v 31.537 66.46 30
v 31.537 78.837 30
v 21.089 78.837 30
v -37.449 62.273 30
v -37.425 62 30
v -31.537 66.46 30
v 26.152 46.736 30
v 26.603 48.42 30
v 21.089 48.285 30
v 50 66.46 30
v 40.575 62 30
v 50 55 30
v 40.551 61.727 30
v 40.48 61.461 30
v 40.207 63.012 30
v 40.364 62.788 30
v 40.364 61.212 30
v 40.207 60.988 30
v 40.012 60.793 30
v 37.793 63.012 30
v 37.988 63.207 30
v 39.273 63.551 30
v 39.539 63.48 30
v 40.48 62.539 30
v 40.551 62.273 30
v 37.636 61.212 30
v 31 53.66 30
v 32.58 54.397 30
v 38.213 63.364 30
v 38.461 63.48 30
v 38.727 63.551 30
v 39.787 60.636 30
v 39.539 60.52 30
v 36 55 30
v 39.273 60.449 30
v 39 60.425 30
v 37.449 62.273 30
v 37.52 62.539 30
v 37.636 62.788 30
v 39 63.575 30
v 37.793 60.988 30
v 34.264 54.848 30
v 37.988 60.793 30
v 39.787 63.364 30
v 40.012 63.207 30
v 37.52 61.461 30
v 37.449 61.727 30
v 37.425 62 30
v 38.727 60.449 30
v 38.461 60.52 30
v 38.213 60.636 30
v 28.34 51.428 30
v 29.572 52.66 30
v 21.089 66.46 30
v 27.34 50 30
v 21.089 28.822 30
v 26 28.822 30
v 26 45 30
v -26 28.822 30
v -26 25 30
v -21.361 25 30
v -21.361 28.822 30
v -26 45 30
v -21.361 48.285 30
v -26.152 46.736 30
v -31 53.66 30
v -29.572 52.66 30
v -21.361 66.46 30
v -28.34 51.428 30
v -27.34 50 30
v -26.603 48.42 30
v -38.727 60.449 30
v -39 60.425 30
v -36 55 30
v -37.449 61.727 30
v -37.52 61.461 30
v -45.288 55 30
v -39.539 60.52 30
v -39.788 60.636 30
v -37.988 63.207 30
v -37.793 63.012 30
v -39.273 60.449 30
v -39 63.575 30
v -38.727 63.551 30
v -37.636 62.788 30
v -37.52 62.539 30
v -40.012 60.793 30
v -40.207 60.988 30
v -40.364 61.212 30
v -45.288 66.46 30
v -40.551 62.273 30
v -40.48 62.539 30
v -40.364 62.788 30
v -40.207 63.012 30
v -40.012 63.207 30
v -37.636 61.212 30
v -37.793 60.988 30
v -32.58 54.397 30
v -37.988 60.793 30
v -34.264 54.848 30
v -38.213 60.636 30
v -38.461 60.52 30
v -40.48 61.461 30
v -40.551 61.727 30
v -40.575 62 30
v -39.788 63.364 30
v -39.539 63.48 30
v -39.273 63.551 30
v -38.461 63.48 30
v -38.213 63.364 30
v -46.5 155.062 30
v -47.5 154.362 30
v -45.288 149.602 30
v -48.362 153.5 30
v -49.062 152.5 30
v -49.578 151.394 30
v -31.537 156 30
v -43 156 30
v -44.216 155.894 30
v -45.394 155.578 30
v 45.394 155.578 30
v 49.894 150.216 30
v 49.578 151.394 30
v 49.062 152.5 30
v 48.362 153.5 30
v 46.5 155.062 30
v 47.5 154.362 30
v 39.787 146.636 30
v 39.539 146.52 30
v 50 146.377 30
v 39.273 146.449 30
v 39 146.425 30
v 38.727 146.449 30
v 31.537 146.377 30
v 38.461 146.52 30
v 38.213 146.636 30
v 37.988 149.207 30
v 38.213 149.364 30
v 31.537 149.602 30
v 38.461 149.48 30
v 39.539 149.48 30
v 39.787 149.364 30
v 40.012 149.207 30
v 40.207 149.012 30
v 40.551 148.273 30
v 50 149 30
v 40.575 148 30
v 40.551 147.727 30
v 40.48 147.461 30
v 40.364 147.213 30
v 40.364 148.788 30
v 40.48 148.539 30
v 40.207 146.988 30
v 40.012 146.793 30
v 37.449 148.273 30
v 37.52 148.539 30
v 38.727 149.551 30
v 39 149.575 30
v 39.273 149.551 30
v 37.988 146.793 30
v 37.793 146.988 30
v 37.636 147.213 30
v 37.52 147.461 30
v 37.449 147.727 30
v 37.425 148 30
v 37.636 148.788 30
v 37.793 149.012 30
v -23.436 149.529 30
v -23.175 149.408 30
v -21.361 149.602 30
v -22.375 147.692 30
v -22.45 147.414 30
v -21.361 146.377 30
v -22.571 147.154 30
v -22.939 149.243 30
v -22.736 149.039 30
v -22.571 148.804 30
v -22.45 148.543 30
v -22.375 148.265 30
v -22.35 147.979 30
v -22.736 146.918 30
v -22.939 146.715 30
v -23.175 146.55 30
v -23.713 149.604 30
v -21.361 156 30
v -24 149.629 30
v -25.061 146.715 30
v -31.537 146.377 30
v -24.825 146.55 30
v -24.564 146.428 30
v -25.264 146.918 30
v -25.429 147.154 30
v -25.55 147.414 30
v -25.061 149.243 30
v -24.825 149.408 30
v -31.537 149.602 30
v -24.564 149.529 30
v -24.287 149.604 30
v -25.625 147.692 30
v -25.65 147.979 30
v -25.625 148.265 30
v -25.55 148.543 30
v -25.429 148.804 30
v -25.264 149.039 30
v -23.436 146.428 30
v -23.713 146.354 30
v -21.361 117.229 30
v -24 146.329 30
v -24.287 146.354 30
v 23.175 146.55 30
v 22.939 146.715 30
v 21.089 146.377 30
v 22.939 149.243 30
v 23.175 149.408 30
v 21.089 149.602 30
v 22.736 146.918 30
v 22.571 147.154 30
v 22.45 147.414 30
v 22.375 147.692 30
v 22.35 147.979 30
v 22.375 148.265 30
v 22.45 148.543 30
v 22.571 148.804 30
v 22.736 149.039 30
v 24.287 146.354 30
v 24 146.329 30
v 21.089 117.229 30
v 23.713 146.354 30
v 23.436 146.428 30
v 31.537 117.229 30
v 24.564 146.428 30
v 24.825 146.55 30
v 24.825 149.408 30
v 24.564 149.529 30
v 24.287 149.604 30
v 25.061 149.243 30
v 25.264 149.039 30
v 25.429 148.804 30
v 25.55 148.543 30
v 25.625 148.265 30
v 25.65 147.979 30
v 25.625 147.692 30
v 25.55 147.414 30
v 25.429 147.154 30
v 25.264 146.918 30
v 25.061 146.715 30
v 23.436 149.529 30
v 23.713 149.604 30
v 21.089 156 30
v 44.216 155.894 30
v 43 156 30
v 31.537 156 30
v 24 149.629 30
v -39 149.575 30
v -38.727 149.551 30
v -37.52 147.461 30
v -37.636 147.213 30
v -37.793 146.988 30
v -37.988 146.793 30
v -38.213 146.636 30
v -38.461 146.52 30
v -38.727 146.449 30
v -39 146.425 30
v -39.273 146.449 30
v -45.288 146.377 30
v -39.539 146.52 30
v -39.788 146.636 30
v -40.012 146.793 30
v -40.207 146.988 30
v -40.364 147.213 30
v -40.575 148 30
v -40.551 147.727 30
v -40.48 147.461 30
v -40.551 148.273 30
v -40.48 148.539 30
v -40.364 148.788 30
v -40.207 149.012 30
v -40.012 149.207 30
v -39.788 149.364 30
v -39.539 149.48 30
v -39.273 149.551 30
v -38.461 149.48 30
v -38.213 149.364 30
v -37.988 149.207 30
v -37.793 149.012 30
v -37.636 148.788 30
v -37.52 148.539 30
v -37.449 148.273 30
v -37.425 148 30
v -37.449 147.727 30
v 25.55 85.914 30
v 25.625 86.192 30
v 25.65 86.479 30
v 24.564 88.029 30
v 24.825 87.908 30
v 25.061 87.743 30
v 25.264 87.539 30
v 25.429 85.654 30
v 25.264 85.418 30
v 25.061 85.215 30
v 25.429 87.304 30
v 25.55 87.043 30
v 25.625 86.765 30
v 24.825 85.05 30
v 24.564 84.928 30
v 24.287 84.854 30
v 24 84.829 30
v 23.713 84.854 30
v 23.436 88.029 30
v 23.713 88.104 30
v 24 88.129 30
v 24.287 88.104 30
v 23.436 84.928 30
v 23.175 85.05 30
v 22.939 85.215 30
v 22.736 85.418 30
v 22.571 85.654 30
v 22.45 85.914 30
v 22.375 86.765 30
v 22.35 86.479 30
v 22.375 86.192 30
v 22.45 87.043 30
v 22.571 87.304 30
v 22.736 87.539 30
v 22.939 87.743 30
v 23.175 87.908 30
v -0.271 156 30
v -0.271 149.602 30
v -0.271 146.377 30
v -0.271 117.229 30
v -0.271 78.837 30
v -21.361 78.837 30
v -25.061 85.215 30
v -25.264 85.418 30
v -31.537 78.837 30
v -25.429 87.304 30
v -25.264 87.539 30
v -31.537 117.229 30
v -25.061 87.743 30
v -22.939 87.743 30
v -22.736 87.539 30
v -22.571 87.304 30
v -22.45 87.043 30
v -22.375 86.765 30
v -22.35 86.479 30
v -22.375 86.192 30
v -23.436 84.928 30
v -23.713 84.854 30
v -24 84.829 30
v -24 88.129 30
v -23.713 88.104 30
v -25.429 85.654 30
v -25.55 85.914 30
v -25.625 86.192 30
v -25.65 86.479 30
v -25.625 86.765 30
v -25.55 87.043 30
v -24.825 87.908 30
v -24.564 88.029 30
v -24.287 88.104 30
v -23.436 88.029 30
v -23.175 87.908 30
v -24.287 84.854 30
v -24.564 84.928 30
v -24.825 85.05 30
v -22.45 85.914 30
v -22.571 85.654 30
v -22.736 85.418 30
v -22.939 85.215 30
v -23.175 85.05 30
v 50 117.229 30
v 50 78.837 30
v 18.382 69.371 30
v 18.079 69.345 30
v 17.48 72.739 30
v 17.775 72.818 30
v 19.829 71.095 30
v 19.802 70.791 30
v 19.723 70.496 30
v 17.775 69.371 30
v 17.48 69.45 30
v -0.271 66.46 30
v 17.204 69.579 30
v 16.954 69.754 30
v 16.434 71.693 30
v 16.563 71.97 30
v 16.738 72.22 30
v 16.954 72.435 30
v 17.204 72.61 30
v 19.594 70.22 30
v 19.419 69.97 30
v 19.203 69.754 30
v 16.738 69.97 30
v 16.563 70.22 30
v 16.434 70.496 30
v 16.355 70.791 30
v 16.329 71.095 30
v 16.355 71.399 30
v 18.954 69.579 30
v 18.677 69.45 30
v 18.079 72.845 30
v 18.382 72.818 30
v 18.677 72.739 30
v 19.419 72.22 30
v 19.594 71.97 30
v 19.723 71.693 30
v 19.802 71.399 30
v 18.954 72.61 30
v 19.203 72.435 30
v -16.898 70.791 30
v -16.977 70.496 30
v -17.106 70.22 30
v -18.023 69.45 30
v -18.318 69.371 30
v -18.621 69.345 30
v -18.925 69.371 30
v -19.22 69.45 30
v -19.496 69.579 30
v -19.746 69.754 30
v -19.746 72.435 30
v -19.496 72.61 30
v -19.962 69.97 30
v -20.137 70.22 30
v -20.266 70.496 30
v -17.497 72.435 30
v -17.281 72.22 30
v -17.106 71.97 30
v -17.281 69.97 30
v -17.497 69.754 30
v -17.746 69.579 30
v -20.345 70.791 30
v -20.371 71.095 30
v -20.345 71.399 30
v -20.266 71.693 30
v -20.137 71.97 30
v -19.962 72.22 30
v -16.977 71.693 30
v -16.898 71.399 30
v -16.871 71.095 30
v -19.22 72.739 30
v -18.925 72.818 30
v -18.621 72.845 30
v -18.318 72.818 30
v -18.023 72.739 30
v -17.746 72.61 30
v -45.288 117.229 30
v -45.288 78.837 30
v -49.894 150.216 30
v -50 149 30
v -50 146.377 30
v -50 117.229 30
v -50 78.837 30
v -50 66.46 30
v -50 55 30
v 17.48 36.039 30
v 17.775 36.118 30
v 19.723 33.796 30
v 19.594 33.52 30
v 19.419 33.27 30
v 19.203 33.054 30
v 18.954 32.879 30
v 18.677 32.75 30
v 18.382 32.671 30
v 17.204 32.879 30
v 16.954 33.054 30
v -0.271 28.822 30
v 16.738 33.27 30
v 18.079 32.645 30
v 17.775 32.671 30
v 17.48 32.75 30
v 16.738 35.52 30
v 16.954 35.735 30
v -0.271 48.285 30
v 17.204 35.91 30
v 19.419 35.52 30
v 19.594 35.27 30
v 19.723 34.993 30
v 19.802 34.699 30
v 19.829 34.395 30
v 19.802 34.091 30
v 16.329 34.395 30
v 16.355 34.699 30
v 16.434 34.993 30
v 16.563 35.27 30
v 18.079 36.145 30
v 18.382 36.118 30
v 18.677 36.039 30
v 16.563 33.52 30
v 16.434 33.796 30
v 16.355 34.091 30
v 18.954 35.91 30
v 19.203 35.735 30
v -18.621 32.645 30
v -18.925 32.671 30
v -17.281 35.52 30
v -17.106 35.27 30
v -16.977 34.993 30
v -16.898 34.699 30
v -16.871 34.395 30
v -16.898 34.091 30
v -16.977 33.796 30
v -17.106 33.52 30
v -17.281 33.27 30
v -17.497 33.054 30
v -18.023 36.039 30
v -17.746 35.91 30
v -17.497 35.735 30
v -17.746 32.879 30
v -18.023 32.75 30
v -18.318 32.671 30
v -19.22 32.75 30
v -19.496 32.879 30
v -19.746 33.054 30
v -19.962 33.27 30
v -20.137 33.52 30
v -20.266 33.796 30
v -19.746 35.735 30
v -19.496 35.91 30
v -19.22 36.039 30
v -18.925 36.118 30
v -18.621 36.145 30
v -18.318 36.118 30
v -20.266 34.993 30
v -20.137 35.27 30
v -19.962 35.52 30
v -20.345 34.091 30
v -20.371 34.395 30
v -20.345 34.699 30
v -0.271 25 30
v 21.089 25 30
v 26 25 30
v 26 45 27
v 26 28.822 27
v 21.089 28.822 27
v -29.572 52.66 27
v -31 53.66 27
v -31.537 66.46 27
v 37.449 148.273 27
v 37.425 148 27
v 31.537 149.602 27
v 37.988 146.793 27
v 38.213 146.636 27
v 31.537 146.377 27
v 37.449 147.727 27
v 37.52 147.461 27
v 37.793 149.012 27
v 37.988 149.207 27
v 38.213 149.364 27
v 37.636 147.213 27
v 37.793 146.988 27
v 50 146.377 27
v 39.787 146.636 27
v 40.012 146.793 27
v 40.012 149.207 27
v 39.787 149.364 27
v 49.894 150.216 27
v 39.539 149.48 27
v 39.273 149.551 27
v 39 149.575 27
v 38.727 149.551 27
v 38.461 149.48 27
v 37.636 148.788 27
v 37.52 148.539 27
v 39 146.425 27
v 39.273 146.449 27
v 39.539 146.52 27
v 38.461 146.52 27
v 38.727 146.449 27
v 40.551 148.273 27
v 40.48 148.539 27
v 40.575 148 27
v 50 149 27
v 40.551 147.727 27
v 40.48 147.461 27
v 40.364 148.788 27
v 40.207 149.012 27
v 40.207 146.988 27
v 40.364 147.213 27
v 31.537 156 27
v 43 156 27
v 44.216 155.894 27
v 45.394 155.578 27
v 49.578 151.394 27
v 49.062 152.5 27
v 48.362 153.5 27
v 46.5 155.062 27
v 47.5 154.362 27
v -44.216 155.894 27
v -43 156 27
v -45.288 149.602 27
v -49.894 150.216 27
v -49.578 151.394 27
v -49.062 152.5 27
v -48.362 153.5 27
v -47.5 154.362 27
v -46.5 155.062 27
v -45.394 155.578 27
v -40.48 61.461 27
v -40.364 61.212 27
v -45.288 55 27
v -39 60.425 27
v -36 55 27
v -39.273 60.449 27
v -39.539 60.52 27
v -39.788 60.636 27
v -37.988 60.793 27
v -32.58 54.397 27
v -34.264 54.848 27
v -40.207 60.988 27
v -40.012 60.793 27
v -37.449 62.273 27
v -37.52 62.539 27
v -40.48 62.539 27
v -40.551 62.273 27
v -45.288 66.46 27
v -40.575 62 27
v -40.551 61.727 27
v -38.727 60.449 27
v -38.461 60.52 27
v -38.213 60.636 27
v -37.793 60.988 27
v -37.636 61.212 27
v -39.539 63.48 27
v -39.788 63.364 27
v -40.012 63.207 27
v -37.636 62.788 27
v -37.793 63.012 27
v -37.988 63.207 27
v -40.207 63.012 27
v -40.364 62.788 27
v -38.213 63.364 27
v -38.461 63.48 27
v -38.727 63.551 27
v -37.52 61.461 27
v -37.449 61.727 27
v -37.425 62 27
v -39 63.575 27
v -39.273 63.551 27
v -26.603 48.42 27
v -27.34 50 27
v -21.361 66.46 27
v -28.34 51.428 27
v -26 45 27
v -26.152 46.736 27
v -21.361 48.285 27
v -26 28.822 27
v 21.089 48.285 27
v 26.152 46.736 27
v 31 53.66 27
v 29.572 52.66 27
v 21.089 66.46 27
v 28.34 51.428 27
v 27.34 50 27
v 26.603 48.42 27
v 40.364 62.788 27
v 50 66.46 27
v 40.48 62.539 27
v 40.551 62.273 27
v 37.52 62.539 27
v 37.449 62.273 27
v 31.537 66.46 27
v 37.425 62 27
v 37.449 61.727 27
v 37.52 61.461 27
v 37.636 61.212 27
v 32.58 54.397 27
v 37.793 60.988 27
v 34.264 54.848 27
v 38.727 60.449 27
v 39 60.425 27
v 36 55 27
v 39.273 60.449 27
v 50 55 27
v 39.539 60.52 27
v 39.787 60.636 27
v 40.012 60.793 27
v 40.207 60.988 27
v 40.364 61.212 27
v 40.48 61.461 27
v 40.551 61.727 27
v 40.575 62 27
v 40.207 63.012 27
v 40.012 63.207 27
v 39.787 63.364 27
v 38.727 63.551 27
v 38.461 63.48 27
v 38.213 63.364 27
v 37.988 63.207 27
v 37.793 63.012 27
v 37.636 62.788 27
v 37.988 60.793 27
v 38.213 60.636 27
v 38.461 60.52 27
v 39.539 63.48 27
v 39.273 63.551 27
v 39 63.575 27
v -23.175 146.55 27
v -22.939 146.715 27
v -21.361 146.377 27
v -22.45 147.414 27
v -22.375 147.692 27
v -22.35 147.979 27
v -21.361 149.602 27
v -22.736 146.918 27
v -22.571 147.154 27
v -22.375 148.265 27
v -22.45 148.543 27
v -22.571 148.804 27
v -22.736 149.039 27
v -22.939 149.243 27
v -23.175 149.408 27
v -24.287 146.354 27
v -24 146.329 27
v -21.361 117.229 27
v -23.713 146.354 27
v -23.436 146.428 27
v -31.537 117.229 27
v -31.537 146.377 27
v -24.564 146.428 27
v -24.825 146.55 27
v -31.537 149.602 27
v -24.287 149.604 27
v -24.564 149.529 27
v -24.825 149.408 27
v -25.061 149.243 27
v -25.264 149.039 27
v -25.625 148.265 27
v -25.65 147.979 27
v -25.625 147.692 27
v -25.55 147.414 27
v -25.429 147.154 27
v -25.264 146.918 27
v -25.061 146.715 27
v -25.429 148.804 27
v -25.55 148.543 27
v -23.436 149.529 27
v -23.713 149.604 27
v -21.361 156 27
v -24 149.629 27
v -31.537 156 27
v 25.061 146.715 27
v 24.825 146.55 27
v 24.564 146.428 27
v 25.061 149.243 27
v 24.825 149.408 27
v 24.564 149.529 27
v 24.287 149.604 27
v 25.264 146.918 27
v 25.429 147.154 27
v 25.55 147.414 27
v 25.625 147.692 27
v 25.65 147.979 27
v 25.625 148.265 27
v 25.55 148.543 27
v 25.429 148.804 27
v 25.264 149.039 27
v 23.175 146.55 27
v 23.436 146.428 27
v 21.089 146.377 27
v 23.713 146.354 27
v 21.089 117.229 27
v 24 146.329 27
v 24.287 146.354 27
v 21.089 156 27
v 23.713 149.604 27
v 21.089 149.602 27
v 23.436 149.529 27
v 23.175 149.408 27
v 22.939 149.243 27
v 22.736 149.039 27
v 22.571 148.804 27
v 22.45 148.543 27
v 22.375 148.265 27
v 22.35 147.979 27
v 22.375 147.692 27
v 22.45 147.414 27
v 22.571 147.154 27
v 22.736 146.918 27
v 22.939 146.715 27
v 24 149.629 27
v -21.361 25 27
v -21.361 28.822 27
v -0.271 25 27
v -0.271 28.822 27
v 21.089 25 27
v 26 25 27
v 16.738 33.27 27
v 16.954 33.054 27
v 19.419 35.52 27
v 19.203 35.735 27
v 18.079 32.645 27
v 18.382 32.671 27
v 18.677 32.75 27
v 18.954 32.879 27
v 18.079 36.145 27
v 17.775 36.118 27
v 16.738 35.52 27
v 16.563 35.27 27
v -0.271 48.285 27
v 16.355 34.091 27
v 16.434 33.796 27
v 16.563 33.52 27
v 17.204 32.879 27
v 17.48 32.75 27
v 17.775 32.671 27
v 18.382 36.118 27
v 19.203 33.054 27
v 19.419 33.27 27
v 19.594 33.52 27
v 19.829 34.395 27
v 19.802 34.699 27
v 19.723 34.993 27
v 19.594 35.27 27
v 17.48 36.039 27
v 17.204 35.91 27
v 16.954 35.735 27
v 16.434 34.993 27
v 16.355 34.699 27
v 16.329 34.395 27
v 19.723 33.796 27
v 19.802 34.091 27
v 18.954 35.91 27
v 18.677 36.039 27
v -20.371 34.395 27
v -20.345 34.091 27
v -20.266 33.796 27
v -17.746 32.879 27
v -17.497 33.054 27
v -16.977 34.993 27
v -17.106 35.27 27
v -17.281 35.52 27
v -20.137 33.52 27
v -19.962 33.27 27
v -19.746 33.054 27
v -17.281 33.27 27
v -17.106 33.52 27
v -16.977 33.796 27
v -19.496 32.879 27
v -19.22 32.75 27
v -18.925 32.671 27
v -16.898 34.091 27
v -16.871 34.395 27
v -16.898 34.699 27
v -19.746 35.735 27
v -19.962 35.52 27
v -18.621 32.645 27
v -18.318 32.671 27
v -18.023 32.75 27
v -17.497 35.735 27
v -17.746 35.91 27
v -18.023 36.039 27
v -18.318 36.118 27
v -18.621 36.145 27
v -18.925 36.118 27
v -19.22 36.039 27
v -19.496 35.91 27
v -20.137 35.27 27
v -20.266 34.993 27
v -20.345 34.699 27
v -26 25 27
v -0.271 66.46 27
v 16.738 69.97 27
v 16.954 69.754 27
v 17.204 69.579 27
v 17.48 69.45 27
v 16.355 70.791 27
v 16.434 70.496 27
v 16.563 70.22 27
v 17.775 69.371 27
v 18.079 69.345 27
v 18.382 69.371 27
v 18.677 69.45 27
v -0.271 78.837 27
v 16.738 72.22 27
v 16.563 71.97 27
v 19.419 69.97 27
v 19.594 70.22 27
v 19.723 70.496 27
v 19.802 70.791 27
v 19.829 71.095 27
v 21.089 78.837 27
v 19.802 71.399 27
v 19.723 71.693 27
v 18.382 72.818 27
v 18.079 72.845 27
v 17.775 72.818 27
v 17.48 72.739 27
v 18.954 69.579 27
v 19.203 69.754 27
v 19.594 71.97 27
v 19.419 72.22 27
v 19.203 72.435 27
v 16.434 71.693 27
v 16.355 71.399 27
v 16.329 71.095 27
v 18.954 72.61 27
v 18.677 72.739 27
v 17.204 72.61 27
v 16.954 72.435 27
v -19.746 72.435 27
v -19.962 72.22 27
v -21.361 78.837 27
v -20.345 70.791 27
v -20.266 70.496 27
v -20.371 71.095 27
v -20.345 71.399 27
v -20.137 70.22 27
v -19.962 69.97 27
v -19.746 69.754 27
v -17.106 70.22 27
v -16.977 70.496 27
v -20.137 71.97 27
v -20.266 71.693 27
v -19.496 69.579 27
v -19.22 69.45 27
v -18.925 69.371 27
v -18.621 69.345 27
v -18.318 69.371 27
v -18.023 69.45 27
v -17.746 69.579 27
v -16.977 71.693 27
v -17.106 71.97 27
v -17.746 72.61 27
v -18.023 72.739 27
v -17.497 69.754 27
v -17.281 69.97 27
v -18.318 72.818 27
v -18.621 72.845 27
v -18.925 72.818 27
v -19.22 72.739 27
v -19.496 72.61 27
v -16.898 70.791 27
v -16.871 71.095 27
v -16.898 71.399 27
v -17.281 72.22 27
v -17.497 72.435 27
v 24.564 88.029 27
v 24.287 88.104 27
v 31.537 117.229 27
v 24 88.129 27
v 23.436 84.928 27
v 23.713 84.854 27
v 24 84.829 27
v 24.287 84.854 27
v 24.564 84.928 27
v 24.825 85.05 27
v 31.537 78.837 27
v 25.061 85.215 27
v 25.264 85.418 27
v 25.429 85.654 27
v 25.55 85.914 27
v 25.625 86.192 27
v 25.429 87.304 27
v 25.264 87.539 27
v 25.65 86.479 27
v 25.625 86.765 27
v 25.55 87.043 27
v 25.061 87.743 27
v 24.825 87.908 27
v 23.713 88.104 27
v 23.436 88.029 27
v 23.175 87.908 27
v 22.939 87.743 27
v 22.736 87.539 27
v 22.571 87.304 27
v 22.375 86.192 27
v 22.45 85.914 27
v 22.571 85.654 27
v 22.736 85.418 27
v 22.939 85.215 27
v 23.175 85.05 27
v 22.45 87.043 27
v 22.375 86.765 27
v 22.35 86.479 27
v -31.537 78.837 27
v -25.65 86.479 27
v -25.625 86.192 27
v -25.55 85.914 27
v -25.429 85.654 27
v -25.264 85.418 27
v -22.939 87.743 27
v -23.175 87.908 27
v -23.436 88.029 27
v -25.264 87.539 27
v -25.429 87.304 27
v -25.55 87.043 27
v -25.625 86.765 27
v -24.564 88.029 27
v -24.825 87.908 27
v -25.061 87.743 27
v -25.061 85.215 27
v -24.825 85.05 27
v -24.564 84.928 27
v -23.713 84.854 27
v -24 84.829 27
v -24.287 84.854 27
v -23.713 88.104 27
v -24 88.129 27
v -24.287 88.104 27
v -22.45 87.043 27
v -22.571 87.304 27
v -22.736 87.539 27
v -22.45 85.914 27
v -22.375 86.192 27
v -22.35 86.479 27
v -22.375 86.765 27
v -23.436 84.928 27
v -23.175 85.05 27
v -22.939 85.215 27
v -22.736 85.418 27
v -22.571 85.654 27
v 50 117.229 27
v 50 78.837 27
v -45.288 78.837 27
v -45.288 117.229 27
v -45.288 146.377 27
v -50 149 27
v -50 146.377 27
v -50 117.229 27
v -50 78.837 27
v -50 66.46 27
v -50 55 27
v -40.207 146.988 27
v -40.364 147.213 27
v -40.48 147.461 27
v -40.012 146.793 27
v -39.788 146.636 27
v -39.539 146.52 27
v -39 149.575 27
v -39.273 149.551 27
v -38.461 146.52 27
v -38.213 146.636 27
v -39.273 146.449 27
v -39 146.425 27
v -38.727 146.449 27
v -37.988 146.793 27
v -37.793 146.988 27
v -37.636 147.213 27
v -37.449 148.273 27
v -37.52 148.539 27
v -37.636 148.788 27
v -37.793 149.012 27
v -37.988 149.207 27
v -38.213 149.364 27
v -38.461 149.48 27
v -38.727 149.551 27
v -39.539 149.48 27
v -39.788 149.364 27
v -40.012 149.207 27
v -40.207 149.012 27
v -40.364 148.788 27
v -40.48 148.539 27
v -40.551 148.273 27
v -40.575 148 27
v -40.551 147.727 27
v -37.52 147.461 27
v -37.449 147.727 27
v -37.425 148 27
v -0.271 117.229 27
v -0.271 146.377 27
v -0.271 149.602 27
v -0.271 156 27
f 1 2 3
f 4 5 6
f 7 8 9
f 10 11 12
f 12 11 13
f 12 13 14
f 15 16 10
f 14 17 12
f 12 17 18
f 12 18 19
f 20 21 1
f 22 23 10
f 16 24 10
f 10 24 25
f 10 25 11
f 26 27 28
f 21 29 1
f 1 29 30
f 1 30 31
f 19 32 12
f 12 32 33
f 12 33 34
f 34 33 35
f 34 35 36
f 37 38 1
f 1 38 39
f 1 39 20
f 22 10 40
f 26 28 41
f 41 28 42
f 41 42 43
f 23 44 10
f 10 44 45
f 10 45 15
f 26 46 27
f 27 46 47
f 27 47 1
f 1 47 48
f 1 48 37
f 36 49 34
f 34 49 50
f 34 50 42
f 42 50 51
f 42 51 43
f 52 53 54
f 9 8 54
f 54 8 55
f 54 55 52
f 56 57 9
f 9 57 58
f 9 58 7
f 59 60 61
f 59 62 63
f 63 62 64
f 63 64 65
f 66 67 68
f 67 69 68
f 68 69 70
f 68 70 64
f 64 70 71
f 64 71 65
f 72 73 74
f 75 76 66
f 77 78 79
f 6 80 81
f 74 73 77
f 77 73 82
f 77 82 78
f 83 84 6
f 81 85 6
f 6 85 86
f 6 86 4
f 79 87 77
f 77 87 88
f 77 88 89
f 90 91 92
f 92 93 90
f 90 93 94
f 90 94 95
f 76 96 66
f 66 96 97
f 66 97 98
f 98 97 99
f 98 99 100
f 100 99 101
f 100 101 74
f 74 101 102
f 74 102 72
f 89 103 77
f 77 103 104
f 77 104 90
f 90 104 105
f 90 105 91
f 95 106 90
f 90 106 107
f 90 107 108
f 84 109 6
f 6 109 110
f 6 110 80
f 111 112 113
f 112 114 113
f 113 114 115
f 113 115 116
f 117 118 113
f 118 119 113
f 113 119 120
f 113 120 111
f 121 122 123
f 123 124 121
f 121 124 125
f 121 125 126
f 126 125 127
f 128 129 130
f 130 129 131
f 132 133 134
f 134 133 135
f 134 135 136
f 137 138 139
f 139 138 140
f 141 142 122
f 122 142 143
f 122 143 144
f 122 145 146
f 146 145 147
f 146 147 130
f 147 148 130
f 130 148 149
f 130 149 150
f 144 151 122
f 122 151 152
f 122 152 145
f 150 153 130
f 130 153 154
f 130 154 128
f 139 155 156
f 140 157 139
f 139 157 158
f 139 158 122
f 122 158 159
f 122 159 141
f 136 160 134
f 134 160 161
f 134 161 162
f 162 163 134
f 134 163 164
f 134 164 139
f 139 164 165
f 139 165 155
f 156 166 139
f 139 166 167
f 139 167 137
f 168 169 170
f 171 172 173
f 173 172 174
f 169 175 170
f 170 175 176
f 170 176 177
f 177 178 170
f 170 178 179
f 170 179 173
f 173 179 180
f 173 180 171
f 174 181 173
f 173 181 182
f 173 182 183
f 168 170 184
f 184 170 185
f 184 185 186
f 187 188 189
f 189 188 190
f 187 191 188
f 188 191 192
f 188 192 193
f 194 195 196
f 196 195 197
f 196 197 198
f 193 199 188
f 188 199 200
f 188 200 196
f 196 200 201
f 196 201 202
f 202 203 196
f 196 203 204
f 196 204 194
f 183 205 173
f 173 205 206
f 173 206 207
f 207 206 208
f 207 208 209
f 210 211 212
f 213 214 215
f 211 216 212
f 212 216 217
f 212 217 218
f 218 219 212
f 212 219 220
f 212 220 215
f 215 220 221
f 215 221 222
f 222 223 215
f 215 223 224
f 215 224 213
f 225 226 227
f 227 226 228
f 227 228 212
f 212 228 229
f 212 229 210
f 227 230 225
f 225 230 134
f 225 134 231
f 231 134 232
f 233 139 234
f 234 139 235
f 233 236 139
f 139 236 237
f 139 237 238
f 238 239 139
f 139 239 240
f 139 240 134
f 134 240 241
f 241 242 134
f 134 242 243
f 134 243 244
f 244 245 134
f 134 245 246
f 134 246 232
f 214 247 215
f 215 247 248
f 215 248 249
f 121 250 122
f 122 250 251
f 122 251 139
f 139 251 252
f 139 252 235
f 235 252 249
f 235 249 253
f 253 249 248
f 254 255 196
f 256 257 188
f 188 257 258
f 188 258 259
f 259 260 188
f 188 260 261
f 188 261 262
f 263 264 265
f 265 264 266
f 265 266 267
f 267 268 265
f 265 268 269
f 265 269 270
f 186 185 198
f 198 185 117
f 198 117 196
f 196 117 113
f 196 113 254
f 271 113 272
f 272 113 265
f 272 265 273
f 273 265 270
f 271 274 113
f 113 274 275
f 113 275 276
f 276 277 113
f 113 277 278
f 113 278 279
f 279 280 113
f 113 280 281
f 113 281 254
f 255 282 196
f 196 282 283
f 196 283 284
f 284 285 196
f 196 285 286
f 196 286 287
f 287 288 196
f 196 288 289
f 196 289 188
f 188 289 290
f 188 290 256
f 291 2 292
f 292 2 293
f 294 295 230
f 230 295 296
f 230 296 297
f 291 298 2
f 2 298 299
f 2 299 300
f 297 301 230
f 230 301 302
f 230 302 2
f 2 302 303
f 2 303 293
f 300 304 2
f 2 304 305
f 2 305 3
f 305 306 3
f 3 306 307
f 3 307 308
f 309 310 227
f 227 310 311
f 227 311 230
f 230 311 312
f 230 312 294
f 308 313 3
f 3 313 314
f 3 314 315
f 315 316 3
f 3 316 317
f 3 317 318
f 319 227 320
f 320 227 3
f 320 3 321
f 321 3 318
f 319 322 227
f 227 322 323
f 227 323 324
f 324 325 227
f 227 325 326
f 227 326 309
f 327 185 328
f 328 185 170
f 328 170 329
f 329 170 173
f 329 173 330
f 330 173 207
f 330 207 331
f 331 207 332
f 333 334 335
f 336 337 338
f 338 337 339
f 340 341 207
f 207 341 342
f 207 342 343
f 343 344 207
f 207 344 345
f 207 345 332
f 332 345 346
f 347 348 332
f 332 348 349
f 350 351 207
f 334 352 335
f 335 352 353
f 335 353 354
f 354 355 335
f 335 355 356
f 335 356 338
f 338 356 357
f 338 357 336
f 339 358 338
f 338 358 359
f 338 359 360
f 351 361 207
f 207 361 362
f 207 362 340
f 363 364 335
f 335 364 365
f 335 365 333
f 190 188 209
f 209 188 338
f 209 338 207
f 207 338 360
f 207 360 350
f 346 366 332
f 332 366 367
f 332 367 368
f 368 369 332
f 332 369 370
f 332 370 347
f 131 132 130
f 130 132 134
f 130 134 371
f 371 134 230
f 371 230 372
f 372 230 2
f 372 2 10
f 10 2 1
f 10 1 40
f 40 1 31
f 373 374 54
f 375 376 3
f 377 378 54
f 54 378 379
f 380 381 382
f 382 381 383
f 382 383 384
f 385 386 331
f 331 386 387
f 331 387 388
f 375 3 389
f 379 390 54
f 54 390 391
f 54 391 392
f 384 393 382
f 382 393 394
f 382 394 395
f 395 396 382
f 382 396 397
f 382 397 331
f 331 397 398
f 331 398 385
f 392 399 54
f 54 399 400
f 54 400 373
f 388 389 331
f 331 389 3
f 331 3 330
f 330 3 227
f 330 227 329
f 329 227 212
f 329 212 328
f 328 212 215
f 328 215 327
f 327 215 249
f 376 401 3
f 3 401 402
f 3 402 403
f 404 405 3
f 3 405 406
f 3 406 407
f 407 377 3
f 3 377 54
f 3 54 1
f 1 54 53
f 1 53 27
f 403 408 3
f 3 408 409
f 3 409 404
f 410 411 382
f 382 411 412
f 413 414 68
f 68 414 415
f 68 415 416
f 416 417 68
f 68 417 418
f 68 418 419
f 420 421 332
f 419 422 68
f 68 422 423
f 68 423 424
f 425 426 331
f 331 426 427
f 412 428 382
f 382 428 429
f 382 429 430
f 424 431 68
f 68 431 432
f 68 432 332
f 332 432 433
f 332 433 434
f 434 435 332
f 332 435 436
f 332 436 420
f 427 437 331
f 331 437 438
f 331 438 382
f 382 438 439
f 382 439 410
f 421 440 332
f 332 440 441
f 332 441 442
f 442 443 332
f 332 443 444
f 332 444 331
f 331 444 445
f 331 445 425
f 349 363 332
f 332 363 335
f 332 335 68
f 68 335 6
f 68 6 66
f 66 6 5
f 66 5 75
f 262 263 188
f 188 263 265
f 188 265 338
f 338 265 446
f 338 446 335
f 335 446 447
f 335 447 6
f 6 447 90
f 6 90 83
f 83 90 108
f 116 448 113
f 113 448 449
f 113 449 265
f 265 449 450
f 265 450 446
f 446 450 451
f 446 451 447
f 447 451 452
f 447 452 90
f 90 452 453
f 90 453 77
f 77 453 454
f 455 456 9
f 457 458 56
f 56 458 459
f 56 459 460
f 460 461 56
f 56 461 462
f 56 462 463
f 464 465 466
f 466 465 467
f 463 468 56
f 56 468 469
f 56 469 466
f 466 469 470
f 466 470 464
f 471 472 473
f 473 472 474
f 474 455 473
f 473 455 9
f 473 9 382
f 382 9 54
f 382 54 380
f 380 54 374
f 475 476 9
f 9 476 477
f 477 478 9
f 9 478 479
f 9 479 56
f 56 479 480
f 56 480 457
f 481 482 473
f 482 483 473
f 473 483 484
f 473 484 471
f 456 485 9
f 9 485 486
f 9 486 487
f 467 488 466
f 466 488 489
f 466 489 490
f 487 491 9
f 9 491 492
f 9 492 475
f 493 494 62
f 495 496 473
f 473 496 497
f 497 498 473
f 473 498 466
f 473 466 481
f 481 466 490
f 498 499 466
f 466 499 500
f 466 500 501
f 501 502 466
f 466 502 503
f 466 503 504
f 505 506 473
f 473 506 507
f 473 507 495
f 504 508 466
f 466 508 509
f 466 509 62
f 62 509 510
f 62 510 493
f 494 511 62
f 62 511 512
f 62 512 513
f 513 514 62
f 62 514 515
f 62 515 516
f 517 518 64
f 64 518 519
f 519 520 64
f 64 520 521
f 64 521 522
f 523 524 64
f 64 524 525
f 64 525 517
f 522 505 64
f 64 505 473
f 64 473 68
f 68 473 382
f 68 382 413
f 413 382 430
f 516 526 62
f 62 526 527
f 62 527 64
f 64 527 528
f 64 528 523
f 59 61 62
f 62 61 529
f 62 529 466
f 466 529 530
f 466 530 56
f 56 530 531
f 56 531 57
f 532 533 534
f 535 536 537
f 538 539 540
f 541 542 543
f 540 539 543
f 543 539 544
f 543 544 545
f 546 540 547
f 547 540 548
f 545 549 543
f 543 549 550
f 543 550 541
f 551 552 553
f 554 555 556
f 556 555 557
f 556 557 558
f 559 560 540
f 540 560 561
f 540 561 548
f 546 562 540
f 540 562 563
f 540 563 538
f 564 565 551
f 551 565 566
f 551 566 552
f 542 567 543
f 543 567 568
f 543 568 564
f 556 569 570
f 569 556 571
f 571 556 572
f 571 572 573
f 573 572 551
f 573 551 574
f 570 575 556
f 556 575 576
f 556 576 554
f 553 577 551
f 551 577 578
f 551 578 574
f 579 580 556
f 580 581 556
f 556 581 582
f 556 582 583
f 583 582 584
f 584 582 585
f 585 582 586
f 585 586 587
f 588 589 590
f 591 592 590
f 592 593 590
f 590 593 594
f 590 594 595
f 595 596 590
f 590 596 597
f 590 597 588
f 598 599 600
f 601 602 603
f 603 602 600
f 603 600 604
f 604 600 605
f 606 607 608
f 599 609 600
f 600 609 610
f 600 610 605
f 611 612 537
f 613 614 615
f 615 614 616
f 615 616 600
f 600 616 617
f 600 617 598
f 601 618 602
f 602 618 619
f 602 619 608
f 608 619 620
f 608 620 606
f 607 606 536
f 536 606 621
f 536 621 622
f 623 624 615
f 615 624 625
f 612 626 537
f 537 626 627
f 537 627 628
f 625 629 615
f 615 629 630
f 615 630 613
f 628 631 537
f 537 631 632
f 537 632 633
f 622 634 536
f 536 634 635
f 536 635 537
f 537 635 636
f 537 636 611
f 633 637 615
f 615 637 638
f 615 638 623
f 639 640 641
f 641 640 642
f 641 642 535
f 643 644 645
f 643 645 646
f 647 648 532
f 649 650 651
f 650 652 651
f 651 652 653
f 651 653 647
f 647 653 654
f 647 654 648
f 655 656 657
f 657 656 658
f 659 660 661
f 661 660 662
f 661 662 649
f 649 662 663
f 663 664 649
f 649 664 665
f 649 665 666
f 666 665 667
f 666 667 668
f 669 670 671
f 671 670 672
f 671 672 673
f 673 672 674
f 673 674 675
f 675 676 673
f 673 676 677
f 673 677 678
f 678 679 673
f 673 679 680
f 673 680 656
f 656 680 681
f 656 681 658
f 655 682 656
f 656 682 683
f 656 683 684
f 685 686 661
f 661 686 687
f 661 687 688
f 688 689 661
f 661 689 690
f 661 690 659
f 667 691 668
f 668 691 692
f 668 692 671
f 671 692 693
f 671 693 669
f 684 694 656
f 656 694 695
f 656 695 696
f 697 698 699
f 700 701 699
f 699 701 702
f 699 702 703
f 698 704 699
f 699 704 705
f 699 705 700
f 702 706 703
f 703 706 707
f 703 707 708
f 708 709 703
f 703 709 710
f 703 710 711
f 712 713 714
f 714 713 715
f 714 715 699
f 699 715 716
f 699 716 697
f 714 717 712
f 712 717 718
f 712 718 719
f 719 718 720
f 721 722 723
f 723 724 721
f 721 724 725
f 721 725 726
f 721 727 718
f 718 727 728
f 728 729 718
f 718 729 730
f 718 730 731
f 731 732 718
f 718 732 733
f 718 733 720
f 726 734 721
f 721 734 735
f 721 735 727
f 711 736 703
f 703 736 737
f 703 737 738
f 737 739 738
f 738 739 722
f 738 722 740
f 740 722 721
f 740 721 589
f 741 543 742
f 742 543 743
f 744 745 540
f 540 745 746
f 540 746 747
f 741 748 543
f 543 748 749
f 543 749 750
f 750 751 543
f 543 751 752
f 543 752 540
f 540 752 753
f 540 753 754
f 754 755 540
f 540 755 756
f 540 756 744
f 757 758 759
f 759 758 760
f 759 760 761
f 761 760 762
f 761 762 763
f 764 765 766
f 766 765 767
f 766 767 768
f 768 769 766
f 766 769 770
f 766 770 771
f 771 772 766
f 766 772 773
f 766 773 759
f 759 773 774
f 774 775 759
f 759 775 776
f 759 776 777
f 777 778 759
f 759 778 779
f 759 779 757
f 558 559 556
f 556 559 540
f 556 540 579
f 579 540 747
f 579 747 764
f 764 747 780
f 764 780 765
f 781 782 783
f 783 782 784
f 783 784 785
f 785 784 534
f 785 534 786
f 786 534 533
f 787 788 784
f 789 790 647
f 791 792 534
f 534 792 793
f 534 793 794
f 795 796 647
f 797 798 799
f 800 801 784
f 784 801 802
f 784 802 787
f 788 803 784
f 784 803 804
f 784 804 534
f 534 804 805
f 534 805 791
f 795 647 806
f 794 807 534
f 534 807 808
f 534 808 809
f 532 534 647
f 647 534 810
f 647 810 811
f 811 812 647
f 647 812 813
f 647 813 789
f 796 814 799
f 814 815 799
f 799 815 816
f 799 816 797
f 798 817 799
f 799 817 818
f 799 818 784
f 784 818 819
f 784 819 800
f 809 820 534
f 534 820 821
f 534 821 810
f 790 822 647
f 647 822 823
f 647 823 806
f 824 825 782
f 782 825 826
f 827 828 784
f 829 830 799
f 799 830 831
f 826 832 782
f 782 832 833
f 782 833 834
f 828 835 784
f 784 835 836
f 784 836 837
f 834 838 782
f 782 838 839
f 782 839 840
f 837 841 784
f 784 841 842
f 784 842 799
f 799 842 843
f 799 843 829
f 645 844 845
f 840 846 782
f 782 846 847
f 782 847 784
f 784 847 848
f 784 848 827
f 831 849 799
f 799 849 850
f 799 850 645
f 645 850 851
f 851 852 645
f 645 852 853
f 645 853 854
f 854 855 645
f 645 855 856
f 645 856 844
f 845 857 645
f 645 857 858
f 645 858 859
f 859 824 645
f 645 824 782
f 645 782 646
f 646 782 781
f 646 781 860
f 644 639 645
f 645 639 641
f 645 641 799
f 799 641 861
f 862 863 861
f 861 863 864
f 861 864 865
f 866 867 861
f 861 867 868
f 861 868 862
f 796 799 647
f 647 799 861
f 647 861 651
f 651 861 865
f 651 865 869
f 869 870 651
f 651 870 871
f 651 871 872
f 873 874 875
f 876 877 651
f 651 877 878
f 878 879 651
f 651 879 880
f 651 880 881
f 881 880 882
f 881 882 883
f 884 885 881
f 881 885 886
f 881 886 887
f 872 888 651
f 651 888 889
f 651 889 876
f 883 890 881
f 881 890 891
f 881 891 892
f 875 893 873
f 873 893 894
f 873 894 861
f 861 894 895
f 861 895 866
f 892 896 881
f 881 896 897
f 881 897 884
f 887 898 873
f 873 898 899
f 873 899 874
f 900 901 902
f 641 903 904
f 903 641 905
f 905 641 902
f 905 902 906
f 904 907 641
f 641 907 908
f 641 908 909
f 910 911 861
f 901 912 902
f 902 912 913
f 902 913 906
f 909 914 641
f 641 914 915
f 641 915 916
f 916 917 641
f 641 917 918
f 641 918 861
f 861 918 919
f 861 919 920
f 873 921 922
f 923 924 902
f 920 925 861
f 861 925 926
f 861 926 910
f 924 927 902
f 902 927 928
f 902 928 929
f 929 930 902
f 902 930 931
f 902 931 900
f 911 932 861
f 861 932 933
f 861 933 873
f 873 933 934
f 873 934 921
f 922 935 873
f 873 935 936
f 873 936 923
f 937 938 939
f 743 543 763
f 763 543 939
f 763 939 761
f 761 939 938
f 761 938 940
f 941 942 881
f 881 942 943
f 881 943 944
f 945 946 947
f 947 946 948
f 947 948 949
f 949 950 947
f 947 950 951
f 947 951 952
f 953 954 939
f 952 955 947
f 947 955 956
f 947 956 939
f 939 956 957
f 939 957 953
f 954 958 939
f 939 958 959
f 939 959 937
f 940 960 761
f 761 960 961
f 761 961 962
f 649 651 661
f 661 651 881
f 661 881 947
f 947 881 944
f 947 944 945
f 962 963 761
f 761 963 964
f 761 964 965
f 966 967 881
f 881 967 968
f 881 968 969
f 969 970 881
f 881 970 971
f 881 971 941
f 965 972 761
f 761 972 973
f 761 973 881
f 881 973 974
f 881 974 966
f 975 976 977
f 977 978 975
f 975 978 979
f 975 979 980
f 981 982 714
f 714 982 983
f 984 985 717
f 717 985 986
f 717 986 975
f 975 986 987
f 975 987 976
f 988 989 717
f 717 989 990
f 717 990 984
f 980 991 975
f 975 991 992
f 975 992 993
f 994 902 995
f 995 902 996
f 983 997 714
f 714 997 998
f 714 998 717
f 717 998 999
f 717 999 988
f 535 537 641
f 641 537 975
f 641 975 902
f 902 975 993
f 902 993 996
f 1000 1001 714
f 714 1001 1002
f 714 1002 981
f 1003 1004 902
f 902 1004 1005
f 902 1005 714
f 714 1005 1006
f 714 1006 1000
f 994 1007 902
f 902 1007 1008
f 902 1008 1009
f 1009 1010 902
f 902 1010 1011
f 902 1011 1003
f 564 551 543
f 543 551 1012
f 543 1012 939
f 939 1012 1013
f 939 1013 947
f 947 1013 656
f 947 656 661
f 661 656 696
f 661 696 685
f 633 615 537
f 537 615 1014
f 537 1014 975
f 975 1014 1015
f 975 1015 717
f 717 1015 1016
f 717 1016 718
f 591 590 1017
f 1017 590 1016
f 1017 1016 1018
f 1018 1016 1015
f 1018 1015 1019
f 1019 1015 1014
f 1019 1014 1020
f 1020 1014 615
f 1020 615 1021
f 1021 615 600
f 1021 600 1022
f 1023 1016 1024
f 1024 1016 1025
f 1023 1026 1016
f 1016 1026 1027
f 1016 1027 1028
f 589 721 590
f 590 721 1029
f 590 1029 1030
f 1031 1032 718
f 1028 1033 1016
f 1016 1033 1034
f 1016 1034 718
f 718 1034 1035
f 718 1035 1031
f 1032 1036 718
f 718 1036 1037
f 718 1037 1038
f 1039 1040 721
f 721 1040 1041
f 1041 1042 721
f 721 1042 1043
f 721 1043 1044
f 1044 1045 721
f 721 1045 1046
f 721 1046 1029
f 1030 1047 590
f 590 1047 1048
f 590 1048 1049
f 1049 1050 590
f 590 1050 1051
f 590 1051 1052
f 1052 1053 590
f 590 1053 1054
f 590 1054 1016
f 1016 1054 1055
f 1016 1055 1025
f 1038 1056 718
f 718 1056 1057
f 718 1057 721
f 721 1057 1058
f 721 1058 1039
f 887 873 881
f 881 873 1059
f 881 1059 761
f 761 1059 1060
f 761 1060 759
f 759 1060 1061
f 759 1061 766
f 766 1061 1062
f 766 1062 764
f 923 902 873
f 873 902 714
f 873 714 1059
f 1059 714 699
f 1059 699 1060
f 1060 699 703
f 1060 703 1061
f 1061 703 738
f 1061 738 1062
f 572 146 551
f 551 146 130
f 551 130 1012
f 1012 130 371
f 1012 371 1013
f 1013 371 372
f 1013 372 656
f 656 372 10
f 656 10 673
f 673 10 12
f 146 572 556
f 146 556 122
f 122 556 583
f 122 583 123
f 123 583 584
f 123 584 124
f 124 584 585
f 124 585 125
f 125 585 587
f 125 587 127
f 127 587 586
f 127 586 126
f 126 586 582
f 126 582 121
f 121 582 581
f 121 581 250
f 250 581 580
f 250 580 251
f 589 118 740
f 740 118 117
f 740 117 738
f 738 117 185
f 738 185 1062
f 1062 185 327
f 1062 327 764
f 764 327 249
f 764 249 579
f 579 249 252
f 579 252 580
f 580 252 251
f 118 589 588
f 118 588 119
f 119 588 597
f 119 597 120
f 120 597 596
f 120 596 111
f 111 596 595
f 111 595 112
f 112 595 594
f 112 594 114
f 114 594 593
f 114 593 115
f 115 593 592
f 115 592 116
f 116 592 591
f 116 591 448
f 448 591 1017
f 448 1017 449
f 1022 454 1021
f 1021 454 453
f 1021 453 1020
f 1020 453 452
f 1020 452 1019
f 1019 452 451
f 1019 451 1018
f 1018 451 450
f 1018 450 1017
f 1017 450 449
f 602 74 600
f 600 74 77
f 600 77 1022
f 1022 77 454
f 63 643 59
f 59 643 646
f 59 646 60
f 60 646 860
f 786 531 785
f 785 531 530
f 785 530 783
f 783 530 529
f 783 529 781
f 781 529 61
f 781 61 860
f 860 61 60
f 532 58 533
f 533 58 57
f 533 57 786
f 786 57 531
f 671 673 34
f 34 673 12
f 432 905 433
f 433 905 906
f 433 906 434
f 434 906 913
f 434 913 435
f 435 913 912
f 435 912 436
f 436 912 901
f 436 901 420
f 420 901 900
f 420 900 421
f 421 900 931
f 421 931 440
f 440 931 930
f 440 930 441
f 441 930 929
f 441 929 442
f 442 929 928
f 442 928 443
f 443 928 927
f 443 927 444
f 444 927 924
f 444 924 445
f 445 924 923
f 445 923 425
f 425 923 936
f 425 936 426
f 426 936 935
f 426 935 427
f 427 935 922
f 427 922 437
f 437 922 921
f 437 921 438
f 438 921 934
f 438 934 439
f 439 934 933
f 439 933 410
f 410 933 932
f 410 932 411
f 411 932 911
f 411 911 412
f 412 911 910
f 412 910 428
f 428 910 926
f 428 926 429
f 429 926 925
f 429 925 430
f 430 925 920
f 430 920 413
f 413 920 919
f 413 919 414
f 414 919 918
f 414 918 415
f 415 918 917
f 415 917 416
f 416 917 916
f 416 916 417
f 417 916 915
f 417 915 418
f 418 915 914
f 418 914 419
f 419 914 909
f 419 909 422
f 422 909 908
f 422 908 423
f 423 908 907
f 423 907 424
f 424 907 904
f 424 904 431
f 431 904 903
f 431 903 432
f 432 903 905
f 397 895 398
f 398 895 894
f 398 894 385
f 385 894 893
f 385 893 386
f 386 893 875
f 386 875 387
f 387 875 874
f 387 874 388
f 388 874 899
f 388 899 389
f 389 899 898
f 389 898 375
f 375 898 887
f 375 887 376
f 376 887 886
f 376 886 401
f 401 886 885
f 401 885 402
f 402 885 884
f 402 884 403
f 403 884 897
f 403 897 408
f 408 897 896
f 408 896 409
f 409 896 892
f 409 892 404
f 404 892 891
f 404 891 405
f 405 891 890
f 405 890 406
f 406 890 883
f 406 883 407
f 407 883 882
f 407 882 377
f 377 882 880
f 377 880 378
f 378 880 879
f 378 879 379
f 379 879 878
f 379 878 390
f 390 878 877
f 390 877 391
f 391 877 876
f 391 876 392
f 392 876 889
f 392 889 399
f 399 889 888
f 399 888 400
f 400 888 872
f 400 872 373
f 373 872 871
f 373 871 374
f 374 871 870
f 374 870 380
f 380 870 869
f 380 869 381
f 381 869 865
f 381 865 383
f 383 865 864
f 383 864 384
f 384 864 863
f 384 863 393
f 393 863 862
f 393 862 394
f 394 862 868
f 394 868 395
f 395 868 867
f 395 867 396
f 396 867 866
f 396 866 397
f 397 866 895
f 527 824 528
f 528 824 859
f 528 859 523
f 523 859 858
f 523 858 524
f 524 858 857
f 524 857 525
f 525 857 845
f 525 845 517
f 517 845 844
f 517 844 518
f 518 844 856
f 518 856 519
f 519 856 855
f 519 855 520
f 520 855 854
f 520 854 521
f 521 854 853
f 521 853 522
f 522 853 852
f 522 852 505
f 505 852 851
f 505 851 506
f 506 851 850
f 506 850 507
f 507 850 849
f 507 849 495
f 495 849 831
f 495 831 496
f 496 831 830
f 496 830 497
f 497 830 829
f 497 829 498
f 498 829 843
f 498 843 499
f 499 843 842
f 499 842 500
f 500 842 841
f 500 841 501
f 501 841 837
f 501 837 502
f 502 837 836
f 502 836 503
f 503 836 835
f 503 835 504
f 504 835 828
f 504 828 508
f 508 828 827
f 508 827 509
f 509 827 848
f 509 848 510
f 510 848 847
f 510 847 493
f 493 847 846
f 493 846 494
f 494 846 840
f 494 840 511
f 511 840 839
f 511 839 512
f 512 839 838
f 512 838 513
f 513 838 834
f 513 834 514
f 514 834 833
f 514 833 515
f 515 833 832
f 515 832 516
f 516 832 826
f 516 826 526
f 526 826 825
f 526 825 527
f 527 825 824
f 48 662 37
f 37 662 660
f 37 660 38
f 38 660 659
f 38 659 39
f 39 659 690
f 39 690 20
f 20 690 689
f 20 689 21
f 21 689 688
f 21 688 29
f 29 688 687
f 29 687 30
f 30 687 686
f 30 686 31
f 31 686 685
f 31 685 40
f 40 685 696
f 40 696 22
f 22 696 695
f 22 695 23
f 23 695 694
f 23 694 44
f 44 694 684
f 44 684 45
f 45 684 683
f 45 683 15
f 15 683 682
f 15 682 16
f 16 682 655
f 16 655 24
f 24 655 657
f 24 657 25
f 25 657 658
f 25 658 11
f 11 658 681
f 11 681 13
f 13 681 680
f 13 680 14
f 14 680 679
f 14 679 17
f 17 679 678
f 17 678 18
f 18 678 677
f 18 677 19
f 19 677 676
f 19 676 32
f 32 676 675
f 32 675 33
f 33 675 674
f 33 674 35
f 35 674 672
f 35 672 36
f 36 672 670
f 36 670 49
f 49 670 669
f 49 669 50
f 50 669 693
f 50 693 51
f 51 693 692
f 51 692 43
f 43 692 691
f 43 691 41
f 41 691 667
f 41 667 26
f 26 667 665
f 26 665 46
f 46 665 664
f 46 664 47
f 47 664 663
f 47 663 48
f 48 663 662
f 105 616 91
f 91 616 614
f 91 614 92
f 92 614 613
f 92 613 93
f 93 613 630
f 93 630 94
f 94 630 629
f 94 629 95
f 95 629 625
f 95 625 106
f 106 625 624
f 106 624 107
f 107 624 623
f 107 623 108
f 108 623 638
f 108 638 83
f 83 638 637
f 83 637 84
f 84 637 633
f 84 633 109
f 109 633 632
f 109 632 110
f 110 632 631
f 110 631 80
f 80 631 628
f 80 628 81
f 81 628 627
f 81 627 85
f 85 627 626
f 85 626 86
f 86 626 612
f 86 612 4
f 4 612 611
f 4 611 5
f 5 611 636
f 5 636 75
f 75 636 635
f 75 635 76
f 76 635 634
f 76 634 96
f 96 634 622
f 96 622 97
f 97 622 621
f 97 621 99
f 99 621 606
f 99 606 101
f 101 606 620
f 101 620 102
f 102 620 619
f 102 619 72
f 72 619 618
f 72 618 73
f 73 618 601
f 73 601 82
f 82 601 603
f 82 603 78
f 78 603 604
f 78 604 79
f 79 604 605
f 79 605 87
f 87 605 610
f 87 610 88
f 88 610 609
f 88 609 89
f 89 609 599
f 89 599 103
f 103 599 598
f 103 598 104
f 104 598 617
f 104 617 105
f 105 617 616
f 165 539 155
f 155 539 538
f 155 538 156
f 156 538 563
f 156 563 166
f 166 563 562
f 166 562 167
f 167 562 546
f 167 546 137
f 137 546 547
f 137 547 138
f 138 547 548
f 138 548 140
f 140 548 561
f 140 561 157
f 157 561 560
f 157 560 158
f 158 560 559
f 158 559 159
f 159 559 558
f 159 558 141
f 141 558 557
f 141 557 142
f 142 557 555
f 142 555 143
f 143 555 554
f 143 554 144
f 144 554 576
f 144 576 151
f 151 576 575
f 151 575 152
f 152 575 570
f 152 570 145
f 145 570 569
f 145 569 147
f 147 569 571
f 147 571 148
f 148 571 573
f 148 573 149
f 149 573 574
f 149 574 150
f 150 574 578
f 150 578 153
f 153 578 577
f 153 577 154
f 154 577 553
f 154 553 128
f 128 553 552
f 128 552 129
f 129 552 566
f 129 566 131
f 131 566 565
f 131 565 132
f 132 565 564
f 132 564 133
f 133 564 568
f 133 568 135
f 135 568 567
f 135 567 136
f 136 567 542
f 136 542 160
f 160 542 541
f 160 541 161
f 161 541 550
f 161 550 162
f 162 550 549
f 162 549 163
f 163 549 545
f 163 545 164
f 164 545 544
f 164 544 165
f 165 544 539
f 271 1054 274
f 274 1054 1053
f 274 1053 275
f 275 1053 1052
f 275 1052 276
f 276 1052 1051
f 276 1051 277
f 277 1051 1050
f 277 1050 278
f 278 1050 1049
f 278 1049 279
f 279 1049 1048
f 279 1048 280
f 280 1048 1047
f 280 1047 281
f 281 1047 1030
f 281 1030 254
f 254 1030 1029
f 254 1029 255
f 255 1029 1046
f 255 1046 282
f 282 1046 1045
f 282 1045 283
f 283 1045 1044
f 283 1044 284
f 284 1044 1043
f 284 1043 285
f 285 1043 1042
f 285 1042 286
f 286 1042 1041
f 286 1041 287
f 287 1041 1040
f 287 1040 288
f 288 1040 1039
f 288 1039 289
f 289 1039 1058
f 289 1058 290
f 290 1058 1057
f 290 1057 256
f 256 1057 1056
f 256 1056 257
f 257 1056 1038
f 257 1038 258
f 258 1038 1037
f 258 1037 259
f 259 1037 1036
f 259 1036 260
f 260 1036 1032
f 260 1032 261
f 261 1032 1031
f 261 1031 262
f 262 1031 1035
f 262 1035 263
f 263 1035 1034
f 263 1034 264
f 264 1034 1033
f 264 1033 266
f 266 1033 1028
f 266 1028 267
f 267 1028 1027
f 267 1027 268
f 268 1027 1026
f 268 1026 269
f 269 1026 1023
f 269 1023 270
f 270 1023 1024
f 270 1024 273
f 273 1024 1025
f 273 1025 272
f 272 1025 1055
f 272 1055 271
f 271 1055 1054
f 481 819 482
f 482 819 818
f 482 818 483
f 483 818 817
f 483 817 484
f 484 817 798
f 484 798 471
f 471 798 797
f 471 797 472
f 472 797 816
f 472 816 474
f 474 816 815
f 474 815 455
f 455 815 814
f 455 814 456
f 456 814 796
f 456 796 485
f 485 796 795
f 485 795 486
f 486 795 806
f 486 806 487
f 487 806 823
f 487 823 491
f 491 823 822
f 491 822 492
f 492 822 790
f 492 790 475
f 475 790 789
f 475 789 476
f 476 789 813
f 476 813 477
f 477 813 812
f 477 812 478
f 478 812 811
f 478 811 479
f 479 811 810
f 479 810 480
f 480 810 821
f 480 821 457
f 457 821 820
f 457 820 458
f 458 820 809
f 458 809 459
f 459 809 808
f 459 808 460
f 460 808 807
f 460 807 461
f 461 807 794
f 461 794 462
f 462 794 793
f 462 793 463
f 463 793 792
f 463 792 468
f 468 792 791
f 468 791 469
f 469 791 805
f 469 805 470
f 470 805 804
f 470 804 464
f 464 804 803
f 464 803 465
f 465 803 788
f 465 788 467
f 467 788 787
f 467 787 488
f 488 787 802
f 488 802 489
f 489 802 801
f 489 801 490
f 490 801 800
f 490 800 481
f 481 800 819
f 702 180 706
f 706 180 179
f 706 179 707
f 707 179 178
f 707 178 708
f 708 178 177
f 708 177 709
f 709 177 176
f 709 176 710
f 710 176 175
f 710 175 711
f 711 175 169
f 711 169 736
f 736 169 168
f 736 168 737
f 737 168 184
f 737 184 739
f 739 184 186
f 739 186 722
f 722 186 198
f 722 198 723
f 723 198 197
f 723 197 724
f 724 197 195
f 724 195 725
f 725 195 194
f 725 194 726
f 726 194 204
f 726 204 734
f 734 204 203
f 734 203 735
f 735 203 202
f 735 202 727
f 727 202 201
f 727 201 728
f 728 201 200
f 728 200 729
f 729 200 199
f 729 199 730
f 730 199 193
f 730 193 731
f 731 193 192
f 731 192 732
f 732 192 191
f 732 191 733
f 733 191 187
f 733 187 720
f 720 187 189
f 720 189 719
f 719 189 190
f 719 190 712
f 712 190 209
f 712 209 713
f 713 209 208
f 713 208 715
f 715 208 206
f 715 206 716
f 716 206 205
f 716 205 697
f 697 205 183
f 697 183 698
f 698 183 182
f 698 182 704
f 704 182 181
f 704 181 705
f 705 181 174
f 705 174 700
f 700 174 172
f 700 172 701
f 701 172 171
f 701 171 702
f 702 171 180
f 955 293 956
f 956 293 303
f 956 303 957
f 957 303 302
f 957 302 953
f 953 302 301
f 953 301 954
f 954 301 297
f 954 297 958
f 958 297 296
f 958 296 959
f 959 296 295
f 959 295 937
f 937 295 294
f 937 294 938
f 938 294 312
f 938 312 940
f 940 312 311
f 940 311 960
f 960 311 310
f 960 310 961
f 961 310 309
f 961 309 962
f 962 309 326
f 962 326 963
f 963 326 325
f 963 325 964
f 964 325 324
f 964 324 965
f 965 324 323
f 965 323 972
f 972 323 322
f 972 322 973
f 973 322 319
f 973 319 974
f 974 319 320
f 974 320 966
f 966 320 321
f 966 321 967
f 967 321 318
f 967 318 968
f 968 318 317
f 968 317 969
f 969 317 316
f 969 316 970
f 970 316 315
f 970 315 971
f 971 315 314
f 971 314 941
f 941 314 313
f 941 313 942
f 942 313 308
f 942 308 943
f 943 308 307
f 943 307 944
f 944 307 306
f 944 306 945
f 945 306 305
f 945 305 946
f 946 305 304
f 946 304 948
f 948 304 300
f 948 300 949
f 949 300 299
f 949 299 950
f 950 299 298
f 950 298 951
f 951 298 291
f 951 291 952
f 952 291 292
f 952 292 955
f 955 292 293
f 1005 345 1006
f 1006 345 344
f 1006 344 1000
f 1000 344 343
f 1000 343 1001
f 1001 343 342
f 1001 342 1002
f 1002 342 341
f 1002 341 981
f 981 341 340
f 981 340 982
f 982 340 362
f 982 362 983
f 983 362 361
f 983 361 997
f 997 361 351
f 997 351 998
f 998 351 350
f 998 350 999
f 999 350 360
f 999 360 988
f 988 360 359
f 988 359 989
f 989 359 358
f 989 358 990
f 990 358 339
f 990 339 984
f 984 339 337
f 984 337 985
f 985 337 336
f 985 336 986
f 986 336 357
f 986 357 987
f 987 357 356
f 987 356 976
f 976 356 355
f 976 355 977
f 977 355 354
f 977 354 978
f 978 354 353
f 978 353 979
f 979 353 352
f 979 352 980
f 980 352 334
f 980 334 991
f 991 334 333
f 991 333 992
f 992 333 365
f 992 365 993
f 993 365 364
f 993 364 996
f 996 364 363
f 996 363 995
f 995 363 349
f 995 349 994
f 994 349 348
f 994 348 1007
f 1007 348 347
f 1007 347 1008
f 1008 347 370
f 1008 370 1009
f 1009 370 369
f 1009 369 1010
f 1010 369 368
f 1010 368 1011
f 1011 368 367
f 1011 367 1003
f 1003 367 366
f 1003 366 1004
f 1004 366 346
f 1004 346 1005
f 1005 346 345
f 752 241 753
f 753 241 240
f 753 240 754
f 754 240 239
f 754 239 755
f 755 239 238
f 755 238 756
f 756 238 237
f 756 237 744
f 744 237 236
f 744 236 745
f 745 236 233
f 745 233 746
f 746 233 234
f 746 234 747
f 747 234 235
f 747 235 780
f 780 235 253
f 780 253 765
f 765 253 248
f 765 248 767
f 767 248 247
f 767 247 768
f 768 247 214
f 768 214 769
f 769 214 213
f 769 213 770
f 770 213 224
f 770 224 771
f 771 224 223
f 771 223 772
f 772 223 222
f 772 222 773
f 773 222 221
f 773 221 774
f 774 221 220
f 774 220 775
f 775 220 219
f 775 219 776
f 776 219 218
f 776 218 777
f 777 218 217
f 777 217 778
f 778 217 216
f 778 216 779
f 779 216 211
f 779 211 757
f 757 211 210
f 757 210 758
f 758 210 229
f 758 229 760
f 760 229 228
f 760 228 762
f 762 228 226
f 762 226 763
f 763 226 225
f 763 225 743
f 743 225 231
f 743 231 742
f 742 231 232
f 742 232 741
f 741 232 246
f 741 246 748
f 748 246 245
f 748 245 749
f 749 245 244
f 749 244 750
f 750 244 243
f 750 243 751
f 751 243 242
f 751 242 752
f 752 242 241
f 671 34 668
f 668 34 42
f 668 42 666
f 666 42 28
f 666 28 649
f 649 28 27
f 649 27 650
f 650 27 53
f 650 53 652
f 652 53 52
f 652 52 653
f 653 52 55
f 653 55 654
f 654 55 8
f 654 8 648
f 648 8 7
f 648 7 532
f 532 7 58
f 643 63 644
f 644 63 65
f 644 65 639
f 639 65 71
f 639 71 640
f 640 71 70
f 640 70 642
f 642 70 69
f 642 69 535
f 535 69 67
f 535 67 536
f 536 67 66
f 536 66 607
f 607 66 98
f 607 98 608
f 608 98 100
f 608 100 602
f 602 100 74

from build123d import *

# Parameters (mm, degrees)
SKETCH2_R           = 1.575
SKETCH2_R_2         = 1.75
BOSS_EXTRUDE1_DEPTH = 3
SKETCH3_R           = 1.65
CUT_EXTRUDE1_DEPTH  = 10
FILLET1_R           = 10


with BuildPart() as part:
    # Sketch2 → Boss-Extrude1 (new body)
    with BuildSketch(Plane.XY.offset(27)):
        with BuildLine():
            Line((50, 113.943914812), (50, 149))
            ThreePointArc((50, 149), (47.949747468, 153.949747468), (43, 156))
            Line((43, 156), (-43, 156))
            ThreePointArc((-43, 156), (-47.949747468, 153.949747468), (-50, 149))
            Line((-50, 149), (-50, 113.943914812))
            Line((-50, 113.943914812), (-50, 55))
            Line((-50, 55), (-26, 55))
            Line((-26, 55), (-26, 25))
            Line((-26, 25), (26, 25))
            Line((26, 25), (26, 55))
            Line((26, 55), (50, 55))
            Line((50, 55), (50, 113.943914812))
        make_face()
        with Locations((39, 62)):
            Circle(SKETCH2_R, mode=Mode.SUBTRACT)
        with Locations((-39, 62)):
            Circle(SKETCH2_R, mode=Mode.SUBTRACT)
        with Locations((39, 148)):
            Circle(SKETCH2_R, mode=Mode.SUBTRACT)
        with Locations((-39, 148)):
            Circle(SKETCH2_R, mode=Mode.SUBTRACT)
        with Locations((-18.621445193, 71.094788901)):
            Circle(SKETCH2_R_2, mode=Mode.SUBTRACT)
        with Locations((18.078554807, 71.094788901)):
            Circle(SKETCH2_R_2, mode=Mode.SUBTRACT)
        with Locations((-18.621445193, 34.394788901)):
            Circle(SKETCH2_R_2, mode=Mode.SUBTRACT)
        with Locations((18.078554807, 34.394788901)):
            Circle(SKETCH2_R_2, mode=Mode.SUBTRACT)
    extrude(amount=BOSS_EXTRUDE1_DEPTH)

    # Sketch3 → Cut-Extrude1 (cut)
    with BuildSketch(Plane.XY.offset(30)):
        with Locations((-24, 147.978654182)):
            Circle(SKETCH3_R)
        with Locations((24, 86.478654182)):
            Circle(SKETCH3_R)
        with Locations((-24, 86.478654182)):
            Circle(SKETCH3_R)
        with Locations((24, 147.978654182)):
            Circle(SKETCH3_R)
    extrude(amount=-CUT_EXTRUDE1_DEPTH, mode=Mode.SUBTRACT)

    # Fillet1
    fillet1_edges = [part.edges().sort_by_distance(p)[0] for p in [
        (26, 55, 28.5),
        (-26, 55, 28.5),
    ]]
    fillet(fillet1_edges, radius=FILLET1_R)


solid = part.part
